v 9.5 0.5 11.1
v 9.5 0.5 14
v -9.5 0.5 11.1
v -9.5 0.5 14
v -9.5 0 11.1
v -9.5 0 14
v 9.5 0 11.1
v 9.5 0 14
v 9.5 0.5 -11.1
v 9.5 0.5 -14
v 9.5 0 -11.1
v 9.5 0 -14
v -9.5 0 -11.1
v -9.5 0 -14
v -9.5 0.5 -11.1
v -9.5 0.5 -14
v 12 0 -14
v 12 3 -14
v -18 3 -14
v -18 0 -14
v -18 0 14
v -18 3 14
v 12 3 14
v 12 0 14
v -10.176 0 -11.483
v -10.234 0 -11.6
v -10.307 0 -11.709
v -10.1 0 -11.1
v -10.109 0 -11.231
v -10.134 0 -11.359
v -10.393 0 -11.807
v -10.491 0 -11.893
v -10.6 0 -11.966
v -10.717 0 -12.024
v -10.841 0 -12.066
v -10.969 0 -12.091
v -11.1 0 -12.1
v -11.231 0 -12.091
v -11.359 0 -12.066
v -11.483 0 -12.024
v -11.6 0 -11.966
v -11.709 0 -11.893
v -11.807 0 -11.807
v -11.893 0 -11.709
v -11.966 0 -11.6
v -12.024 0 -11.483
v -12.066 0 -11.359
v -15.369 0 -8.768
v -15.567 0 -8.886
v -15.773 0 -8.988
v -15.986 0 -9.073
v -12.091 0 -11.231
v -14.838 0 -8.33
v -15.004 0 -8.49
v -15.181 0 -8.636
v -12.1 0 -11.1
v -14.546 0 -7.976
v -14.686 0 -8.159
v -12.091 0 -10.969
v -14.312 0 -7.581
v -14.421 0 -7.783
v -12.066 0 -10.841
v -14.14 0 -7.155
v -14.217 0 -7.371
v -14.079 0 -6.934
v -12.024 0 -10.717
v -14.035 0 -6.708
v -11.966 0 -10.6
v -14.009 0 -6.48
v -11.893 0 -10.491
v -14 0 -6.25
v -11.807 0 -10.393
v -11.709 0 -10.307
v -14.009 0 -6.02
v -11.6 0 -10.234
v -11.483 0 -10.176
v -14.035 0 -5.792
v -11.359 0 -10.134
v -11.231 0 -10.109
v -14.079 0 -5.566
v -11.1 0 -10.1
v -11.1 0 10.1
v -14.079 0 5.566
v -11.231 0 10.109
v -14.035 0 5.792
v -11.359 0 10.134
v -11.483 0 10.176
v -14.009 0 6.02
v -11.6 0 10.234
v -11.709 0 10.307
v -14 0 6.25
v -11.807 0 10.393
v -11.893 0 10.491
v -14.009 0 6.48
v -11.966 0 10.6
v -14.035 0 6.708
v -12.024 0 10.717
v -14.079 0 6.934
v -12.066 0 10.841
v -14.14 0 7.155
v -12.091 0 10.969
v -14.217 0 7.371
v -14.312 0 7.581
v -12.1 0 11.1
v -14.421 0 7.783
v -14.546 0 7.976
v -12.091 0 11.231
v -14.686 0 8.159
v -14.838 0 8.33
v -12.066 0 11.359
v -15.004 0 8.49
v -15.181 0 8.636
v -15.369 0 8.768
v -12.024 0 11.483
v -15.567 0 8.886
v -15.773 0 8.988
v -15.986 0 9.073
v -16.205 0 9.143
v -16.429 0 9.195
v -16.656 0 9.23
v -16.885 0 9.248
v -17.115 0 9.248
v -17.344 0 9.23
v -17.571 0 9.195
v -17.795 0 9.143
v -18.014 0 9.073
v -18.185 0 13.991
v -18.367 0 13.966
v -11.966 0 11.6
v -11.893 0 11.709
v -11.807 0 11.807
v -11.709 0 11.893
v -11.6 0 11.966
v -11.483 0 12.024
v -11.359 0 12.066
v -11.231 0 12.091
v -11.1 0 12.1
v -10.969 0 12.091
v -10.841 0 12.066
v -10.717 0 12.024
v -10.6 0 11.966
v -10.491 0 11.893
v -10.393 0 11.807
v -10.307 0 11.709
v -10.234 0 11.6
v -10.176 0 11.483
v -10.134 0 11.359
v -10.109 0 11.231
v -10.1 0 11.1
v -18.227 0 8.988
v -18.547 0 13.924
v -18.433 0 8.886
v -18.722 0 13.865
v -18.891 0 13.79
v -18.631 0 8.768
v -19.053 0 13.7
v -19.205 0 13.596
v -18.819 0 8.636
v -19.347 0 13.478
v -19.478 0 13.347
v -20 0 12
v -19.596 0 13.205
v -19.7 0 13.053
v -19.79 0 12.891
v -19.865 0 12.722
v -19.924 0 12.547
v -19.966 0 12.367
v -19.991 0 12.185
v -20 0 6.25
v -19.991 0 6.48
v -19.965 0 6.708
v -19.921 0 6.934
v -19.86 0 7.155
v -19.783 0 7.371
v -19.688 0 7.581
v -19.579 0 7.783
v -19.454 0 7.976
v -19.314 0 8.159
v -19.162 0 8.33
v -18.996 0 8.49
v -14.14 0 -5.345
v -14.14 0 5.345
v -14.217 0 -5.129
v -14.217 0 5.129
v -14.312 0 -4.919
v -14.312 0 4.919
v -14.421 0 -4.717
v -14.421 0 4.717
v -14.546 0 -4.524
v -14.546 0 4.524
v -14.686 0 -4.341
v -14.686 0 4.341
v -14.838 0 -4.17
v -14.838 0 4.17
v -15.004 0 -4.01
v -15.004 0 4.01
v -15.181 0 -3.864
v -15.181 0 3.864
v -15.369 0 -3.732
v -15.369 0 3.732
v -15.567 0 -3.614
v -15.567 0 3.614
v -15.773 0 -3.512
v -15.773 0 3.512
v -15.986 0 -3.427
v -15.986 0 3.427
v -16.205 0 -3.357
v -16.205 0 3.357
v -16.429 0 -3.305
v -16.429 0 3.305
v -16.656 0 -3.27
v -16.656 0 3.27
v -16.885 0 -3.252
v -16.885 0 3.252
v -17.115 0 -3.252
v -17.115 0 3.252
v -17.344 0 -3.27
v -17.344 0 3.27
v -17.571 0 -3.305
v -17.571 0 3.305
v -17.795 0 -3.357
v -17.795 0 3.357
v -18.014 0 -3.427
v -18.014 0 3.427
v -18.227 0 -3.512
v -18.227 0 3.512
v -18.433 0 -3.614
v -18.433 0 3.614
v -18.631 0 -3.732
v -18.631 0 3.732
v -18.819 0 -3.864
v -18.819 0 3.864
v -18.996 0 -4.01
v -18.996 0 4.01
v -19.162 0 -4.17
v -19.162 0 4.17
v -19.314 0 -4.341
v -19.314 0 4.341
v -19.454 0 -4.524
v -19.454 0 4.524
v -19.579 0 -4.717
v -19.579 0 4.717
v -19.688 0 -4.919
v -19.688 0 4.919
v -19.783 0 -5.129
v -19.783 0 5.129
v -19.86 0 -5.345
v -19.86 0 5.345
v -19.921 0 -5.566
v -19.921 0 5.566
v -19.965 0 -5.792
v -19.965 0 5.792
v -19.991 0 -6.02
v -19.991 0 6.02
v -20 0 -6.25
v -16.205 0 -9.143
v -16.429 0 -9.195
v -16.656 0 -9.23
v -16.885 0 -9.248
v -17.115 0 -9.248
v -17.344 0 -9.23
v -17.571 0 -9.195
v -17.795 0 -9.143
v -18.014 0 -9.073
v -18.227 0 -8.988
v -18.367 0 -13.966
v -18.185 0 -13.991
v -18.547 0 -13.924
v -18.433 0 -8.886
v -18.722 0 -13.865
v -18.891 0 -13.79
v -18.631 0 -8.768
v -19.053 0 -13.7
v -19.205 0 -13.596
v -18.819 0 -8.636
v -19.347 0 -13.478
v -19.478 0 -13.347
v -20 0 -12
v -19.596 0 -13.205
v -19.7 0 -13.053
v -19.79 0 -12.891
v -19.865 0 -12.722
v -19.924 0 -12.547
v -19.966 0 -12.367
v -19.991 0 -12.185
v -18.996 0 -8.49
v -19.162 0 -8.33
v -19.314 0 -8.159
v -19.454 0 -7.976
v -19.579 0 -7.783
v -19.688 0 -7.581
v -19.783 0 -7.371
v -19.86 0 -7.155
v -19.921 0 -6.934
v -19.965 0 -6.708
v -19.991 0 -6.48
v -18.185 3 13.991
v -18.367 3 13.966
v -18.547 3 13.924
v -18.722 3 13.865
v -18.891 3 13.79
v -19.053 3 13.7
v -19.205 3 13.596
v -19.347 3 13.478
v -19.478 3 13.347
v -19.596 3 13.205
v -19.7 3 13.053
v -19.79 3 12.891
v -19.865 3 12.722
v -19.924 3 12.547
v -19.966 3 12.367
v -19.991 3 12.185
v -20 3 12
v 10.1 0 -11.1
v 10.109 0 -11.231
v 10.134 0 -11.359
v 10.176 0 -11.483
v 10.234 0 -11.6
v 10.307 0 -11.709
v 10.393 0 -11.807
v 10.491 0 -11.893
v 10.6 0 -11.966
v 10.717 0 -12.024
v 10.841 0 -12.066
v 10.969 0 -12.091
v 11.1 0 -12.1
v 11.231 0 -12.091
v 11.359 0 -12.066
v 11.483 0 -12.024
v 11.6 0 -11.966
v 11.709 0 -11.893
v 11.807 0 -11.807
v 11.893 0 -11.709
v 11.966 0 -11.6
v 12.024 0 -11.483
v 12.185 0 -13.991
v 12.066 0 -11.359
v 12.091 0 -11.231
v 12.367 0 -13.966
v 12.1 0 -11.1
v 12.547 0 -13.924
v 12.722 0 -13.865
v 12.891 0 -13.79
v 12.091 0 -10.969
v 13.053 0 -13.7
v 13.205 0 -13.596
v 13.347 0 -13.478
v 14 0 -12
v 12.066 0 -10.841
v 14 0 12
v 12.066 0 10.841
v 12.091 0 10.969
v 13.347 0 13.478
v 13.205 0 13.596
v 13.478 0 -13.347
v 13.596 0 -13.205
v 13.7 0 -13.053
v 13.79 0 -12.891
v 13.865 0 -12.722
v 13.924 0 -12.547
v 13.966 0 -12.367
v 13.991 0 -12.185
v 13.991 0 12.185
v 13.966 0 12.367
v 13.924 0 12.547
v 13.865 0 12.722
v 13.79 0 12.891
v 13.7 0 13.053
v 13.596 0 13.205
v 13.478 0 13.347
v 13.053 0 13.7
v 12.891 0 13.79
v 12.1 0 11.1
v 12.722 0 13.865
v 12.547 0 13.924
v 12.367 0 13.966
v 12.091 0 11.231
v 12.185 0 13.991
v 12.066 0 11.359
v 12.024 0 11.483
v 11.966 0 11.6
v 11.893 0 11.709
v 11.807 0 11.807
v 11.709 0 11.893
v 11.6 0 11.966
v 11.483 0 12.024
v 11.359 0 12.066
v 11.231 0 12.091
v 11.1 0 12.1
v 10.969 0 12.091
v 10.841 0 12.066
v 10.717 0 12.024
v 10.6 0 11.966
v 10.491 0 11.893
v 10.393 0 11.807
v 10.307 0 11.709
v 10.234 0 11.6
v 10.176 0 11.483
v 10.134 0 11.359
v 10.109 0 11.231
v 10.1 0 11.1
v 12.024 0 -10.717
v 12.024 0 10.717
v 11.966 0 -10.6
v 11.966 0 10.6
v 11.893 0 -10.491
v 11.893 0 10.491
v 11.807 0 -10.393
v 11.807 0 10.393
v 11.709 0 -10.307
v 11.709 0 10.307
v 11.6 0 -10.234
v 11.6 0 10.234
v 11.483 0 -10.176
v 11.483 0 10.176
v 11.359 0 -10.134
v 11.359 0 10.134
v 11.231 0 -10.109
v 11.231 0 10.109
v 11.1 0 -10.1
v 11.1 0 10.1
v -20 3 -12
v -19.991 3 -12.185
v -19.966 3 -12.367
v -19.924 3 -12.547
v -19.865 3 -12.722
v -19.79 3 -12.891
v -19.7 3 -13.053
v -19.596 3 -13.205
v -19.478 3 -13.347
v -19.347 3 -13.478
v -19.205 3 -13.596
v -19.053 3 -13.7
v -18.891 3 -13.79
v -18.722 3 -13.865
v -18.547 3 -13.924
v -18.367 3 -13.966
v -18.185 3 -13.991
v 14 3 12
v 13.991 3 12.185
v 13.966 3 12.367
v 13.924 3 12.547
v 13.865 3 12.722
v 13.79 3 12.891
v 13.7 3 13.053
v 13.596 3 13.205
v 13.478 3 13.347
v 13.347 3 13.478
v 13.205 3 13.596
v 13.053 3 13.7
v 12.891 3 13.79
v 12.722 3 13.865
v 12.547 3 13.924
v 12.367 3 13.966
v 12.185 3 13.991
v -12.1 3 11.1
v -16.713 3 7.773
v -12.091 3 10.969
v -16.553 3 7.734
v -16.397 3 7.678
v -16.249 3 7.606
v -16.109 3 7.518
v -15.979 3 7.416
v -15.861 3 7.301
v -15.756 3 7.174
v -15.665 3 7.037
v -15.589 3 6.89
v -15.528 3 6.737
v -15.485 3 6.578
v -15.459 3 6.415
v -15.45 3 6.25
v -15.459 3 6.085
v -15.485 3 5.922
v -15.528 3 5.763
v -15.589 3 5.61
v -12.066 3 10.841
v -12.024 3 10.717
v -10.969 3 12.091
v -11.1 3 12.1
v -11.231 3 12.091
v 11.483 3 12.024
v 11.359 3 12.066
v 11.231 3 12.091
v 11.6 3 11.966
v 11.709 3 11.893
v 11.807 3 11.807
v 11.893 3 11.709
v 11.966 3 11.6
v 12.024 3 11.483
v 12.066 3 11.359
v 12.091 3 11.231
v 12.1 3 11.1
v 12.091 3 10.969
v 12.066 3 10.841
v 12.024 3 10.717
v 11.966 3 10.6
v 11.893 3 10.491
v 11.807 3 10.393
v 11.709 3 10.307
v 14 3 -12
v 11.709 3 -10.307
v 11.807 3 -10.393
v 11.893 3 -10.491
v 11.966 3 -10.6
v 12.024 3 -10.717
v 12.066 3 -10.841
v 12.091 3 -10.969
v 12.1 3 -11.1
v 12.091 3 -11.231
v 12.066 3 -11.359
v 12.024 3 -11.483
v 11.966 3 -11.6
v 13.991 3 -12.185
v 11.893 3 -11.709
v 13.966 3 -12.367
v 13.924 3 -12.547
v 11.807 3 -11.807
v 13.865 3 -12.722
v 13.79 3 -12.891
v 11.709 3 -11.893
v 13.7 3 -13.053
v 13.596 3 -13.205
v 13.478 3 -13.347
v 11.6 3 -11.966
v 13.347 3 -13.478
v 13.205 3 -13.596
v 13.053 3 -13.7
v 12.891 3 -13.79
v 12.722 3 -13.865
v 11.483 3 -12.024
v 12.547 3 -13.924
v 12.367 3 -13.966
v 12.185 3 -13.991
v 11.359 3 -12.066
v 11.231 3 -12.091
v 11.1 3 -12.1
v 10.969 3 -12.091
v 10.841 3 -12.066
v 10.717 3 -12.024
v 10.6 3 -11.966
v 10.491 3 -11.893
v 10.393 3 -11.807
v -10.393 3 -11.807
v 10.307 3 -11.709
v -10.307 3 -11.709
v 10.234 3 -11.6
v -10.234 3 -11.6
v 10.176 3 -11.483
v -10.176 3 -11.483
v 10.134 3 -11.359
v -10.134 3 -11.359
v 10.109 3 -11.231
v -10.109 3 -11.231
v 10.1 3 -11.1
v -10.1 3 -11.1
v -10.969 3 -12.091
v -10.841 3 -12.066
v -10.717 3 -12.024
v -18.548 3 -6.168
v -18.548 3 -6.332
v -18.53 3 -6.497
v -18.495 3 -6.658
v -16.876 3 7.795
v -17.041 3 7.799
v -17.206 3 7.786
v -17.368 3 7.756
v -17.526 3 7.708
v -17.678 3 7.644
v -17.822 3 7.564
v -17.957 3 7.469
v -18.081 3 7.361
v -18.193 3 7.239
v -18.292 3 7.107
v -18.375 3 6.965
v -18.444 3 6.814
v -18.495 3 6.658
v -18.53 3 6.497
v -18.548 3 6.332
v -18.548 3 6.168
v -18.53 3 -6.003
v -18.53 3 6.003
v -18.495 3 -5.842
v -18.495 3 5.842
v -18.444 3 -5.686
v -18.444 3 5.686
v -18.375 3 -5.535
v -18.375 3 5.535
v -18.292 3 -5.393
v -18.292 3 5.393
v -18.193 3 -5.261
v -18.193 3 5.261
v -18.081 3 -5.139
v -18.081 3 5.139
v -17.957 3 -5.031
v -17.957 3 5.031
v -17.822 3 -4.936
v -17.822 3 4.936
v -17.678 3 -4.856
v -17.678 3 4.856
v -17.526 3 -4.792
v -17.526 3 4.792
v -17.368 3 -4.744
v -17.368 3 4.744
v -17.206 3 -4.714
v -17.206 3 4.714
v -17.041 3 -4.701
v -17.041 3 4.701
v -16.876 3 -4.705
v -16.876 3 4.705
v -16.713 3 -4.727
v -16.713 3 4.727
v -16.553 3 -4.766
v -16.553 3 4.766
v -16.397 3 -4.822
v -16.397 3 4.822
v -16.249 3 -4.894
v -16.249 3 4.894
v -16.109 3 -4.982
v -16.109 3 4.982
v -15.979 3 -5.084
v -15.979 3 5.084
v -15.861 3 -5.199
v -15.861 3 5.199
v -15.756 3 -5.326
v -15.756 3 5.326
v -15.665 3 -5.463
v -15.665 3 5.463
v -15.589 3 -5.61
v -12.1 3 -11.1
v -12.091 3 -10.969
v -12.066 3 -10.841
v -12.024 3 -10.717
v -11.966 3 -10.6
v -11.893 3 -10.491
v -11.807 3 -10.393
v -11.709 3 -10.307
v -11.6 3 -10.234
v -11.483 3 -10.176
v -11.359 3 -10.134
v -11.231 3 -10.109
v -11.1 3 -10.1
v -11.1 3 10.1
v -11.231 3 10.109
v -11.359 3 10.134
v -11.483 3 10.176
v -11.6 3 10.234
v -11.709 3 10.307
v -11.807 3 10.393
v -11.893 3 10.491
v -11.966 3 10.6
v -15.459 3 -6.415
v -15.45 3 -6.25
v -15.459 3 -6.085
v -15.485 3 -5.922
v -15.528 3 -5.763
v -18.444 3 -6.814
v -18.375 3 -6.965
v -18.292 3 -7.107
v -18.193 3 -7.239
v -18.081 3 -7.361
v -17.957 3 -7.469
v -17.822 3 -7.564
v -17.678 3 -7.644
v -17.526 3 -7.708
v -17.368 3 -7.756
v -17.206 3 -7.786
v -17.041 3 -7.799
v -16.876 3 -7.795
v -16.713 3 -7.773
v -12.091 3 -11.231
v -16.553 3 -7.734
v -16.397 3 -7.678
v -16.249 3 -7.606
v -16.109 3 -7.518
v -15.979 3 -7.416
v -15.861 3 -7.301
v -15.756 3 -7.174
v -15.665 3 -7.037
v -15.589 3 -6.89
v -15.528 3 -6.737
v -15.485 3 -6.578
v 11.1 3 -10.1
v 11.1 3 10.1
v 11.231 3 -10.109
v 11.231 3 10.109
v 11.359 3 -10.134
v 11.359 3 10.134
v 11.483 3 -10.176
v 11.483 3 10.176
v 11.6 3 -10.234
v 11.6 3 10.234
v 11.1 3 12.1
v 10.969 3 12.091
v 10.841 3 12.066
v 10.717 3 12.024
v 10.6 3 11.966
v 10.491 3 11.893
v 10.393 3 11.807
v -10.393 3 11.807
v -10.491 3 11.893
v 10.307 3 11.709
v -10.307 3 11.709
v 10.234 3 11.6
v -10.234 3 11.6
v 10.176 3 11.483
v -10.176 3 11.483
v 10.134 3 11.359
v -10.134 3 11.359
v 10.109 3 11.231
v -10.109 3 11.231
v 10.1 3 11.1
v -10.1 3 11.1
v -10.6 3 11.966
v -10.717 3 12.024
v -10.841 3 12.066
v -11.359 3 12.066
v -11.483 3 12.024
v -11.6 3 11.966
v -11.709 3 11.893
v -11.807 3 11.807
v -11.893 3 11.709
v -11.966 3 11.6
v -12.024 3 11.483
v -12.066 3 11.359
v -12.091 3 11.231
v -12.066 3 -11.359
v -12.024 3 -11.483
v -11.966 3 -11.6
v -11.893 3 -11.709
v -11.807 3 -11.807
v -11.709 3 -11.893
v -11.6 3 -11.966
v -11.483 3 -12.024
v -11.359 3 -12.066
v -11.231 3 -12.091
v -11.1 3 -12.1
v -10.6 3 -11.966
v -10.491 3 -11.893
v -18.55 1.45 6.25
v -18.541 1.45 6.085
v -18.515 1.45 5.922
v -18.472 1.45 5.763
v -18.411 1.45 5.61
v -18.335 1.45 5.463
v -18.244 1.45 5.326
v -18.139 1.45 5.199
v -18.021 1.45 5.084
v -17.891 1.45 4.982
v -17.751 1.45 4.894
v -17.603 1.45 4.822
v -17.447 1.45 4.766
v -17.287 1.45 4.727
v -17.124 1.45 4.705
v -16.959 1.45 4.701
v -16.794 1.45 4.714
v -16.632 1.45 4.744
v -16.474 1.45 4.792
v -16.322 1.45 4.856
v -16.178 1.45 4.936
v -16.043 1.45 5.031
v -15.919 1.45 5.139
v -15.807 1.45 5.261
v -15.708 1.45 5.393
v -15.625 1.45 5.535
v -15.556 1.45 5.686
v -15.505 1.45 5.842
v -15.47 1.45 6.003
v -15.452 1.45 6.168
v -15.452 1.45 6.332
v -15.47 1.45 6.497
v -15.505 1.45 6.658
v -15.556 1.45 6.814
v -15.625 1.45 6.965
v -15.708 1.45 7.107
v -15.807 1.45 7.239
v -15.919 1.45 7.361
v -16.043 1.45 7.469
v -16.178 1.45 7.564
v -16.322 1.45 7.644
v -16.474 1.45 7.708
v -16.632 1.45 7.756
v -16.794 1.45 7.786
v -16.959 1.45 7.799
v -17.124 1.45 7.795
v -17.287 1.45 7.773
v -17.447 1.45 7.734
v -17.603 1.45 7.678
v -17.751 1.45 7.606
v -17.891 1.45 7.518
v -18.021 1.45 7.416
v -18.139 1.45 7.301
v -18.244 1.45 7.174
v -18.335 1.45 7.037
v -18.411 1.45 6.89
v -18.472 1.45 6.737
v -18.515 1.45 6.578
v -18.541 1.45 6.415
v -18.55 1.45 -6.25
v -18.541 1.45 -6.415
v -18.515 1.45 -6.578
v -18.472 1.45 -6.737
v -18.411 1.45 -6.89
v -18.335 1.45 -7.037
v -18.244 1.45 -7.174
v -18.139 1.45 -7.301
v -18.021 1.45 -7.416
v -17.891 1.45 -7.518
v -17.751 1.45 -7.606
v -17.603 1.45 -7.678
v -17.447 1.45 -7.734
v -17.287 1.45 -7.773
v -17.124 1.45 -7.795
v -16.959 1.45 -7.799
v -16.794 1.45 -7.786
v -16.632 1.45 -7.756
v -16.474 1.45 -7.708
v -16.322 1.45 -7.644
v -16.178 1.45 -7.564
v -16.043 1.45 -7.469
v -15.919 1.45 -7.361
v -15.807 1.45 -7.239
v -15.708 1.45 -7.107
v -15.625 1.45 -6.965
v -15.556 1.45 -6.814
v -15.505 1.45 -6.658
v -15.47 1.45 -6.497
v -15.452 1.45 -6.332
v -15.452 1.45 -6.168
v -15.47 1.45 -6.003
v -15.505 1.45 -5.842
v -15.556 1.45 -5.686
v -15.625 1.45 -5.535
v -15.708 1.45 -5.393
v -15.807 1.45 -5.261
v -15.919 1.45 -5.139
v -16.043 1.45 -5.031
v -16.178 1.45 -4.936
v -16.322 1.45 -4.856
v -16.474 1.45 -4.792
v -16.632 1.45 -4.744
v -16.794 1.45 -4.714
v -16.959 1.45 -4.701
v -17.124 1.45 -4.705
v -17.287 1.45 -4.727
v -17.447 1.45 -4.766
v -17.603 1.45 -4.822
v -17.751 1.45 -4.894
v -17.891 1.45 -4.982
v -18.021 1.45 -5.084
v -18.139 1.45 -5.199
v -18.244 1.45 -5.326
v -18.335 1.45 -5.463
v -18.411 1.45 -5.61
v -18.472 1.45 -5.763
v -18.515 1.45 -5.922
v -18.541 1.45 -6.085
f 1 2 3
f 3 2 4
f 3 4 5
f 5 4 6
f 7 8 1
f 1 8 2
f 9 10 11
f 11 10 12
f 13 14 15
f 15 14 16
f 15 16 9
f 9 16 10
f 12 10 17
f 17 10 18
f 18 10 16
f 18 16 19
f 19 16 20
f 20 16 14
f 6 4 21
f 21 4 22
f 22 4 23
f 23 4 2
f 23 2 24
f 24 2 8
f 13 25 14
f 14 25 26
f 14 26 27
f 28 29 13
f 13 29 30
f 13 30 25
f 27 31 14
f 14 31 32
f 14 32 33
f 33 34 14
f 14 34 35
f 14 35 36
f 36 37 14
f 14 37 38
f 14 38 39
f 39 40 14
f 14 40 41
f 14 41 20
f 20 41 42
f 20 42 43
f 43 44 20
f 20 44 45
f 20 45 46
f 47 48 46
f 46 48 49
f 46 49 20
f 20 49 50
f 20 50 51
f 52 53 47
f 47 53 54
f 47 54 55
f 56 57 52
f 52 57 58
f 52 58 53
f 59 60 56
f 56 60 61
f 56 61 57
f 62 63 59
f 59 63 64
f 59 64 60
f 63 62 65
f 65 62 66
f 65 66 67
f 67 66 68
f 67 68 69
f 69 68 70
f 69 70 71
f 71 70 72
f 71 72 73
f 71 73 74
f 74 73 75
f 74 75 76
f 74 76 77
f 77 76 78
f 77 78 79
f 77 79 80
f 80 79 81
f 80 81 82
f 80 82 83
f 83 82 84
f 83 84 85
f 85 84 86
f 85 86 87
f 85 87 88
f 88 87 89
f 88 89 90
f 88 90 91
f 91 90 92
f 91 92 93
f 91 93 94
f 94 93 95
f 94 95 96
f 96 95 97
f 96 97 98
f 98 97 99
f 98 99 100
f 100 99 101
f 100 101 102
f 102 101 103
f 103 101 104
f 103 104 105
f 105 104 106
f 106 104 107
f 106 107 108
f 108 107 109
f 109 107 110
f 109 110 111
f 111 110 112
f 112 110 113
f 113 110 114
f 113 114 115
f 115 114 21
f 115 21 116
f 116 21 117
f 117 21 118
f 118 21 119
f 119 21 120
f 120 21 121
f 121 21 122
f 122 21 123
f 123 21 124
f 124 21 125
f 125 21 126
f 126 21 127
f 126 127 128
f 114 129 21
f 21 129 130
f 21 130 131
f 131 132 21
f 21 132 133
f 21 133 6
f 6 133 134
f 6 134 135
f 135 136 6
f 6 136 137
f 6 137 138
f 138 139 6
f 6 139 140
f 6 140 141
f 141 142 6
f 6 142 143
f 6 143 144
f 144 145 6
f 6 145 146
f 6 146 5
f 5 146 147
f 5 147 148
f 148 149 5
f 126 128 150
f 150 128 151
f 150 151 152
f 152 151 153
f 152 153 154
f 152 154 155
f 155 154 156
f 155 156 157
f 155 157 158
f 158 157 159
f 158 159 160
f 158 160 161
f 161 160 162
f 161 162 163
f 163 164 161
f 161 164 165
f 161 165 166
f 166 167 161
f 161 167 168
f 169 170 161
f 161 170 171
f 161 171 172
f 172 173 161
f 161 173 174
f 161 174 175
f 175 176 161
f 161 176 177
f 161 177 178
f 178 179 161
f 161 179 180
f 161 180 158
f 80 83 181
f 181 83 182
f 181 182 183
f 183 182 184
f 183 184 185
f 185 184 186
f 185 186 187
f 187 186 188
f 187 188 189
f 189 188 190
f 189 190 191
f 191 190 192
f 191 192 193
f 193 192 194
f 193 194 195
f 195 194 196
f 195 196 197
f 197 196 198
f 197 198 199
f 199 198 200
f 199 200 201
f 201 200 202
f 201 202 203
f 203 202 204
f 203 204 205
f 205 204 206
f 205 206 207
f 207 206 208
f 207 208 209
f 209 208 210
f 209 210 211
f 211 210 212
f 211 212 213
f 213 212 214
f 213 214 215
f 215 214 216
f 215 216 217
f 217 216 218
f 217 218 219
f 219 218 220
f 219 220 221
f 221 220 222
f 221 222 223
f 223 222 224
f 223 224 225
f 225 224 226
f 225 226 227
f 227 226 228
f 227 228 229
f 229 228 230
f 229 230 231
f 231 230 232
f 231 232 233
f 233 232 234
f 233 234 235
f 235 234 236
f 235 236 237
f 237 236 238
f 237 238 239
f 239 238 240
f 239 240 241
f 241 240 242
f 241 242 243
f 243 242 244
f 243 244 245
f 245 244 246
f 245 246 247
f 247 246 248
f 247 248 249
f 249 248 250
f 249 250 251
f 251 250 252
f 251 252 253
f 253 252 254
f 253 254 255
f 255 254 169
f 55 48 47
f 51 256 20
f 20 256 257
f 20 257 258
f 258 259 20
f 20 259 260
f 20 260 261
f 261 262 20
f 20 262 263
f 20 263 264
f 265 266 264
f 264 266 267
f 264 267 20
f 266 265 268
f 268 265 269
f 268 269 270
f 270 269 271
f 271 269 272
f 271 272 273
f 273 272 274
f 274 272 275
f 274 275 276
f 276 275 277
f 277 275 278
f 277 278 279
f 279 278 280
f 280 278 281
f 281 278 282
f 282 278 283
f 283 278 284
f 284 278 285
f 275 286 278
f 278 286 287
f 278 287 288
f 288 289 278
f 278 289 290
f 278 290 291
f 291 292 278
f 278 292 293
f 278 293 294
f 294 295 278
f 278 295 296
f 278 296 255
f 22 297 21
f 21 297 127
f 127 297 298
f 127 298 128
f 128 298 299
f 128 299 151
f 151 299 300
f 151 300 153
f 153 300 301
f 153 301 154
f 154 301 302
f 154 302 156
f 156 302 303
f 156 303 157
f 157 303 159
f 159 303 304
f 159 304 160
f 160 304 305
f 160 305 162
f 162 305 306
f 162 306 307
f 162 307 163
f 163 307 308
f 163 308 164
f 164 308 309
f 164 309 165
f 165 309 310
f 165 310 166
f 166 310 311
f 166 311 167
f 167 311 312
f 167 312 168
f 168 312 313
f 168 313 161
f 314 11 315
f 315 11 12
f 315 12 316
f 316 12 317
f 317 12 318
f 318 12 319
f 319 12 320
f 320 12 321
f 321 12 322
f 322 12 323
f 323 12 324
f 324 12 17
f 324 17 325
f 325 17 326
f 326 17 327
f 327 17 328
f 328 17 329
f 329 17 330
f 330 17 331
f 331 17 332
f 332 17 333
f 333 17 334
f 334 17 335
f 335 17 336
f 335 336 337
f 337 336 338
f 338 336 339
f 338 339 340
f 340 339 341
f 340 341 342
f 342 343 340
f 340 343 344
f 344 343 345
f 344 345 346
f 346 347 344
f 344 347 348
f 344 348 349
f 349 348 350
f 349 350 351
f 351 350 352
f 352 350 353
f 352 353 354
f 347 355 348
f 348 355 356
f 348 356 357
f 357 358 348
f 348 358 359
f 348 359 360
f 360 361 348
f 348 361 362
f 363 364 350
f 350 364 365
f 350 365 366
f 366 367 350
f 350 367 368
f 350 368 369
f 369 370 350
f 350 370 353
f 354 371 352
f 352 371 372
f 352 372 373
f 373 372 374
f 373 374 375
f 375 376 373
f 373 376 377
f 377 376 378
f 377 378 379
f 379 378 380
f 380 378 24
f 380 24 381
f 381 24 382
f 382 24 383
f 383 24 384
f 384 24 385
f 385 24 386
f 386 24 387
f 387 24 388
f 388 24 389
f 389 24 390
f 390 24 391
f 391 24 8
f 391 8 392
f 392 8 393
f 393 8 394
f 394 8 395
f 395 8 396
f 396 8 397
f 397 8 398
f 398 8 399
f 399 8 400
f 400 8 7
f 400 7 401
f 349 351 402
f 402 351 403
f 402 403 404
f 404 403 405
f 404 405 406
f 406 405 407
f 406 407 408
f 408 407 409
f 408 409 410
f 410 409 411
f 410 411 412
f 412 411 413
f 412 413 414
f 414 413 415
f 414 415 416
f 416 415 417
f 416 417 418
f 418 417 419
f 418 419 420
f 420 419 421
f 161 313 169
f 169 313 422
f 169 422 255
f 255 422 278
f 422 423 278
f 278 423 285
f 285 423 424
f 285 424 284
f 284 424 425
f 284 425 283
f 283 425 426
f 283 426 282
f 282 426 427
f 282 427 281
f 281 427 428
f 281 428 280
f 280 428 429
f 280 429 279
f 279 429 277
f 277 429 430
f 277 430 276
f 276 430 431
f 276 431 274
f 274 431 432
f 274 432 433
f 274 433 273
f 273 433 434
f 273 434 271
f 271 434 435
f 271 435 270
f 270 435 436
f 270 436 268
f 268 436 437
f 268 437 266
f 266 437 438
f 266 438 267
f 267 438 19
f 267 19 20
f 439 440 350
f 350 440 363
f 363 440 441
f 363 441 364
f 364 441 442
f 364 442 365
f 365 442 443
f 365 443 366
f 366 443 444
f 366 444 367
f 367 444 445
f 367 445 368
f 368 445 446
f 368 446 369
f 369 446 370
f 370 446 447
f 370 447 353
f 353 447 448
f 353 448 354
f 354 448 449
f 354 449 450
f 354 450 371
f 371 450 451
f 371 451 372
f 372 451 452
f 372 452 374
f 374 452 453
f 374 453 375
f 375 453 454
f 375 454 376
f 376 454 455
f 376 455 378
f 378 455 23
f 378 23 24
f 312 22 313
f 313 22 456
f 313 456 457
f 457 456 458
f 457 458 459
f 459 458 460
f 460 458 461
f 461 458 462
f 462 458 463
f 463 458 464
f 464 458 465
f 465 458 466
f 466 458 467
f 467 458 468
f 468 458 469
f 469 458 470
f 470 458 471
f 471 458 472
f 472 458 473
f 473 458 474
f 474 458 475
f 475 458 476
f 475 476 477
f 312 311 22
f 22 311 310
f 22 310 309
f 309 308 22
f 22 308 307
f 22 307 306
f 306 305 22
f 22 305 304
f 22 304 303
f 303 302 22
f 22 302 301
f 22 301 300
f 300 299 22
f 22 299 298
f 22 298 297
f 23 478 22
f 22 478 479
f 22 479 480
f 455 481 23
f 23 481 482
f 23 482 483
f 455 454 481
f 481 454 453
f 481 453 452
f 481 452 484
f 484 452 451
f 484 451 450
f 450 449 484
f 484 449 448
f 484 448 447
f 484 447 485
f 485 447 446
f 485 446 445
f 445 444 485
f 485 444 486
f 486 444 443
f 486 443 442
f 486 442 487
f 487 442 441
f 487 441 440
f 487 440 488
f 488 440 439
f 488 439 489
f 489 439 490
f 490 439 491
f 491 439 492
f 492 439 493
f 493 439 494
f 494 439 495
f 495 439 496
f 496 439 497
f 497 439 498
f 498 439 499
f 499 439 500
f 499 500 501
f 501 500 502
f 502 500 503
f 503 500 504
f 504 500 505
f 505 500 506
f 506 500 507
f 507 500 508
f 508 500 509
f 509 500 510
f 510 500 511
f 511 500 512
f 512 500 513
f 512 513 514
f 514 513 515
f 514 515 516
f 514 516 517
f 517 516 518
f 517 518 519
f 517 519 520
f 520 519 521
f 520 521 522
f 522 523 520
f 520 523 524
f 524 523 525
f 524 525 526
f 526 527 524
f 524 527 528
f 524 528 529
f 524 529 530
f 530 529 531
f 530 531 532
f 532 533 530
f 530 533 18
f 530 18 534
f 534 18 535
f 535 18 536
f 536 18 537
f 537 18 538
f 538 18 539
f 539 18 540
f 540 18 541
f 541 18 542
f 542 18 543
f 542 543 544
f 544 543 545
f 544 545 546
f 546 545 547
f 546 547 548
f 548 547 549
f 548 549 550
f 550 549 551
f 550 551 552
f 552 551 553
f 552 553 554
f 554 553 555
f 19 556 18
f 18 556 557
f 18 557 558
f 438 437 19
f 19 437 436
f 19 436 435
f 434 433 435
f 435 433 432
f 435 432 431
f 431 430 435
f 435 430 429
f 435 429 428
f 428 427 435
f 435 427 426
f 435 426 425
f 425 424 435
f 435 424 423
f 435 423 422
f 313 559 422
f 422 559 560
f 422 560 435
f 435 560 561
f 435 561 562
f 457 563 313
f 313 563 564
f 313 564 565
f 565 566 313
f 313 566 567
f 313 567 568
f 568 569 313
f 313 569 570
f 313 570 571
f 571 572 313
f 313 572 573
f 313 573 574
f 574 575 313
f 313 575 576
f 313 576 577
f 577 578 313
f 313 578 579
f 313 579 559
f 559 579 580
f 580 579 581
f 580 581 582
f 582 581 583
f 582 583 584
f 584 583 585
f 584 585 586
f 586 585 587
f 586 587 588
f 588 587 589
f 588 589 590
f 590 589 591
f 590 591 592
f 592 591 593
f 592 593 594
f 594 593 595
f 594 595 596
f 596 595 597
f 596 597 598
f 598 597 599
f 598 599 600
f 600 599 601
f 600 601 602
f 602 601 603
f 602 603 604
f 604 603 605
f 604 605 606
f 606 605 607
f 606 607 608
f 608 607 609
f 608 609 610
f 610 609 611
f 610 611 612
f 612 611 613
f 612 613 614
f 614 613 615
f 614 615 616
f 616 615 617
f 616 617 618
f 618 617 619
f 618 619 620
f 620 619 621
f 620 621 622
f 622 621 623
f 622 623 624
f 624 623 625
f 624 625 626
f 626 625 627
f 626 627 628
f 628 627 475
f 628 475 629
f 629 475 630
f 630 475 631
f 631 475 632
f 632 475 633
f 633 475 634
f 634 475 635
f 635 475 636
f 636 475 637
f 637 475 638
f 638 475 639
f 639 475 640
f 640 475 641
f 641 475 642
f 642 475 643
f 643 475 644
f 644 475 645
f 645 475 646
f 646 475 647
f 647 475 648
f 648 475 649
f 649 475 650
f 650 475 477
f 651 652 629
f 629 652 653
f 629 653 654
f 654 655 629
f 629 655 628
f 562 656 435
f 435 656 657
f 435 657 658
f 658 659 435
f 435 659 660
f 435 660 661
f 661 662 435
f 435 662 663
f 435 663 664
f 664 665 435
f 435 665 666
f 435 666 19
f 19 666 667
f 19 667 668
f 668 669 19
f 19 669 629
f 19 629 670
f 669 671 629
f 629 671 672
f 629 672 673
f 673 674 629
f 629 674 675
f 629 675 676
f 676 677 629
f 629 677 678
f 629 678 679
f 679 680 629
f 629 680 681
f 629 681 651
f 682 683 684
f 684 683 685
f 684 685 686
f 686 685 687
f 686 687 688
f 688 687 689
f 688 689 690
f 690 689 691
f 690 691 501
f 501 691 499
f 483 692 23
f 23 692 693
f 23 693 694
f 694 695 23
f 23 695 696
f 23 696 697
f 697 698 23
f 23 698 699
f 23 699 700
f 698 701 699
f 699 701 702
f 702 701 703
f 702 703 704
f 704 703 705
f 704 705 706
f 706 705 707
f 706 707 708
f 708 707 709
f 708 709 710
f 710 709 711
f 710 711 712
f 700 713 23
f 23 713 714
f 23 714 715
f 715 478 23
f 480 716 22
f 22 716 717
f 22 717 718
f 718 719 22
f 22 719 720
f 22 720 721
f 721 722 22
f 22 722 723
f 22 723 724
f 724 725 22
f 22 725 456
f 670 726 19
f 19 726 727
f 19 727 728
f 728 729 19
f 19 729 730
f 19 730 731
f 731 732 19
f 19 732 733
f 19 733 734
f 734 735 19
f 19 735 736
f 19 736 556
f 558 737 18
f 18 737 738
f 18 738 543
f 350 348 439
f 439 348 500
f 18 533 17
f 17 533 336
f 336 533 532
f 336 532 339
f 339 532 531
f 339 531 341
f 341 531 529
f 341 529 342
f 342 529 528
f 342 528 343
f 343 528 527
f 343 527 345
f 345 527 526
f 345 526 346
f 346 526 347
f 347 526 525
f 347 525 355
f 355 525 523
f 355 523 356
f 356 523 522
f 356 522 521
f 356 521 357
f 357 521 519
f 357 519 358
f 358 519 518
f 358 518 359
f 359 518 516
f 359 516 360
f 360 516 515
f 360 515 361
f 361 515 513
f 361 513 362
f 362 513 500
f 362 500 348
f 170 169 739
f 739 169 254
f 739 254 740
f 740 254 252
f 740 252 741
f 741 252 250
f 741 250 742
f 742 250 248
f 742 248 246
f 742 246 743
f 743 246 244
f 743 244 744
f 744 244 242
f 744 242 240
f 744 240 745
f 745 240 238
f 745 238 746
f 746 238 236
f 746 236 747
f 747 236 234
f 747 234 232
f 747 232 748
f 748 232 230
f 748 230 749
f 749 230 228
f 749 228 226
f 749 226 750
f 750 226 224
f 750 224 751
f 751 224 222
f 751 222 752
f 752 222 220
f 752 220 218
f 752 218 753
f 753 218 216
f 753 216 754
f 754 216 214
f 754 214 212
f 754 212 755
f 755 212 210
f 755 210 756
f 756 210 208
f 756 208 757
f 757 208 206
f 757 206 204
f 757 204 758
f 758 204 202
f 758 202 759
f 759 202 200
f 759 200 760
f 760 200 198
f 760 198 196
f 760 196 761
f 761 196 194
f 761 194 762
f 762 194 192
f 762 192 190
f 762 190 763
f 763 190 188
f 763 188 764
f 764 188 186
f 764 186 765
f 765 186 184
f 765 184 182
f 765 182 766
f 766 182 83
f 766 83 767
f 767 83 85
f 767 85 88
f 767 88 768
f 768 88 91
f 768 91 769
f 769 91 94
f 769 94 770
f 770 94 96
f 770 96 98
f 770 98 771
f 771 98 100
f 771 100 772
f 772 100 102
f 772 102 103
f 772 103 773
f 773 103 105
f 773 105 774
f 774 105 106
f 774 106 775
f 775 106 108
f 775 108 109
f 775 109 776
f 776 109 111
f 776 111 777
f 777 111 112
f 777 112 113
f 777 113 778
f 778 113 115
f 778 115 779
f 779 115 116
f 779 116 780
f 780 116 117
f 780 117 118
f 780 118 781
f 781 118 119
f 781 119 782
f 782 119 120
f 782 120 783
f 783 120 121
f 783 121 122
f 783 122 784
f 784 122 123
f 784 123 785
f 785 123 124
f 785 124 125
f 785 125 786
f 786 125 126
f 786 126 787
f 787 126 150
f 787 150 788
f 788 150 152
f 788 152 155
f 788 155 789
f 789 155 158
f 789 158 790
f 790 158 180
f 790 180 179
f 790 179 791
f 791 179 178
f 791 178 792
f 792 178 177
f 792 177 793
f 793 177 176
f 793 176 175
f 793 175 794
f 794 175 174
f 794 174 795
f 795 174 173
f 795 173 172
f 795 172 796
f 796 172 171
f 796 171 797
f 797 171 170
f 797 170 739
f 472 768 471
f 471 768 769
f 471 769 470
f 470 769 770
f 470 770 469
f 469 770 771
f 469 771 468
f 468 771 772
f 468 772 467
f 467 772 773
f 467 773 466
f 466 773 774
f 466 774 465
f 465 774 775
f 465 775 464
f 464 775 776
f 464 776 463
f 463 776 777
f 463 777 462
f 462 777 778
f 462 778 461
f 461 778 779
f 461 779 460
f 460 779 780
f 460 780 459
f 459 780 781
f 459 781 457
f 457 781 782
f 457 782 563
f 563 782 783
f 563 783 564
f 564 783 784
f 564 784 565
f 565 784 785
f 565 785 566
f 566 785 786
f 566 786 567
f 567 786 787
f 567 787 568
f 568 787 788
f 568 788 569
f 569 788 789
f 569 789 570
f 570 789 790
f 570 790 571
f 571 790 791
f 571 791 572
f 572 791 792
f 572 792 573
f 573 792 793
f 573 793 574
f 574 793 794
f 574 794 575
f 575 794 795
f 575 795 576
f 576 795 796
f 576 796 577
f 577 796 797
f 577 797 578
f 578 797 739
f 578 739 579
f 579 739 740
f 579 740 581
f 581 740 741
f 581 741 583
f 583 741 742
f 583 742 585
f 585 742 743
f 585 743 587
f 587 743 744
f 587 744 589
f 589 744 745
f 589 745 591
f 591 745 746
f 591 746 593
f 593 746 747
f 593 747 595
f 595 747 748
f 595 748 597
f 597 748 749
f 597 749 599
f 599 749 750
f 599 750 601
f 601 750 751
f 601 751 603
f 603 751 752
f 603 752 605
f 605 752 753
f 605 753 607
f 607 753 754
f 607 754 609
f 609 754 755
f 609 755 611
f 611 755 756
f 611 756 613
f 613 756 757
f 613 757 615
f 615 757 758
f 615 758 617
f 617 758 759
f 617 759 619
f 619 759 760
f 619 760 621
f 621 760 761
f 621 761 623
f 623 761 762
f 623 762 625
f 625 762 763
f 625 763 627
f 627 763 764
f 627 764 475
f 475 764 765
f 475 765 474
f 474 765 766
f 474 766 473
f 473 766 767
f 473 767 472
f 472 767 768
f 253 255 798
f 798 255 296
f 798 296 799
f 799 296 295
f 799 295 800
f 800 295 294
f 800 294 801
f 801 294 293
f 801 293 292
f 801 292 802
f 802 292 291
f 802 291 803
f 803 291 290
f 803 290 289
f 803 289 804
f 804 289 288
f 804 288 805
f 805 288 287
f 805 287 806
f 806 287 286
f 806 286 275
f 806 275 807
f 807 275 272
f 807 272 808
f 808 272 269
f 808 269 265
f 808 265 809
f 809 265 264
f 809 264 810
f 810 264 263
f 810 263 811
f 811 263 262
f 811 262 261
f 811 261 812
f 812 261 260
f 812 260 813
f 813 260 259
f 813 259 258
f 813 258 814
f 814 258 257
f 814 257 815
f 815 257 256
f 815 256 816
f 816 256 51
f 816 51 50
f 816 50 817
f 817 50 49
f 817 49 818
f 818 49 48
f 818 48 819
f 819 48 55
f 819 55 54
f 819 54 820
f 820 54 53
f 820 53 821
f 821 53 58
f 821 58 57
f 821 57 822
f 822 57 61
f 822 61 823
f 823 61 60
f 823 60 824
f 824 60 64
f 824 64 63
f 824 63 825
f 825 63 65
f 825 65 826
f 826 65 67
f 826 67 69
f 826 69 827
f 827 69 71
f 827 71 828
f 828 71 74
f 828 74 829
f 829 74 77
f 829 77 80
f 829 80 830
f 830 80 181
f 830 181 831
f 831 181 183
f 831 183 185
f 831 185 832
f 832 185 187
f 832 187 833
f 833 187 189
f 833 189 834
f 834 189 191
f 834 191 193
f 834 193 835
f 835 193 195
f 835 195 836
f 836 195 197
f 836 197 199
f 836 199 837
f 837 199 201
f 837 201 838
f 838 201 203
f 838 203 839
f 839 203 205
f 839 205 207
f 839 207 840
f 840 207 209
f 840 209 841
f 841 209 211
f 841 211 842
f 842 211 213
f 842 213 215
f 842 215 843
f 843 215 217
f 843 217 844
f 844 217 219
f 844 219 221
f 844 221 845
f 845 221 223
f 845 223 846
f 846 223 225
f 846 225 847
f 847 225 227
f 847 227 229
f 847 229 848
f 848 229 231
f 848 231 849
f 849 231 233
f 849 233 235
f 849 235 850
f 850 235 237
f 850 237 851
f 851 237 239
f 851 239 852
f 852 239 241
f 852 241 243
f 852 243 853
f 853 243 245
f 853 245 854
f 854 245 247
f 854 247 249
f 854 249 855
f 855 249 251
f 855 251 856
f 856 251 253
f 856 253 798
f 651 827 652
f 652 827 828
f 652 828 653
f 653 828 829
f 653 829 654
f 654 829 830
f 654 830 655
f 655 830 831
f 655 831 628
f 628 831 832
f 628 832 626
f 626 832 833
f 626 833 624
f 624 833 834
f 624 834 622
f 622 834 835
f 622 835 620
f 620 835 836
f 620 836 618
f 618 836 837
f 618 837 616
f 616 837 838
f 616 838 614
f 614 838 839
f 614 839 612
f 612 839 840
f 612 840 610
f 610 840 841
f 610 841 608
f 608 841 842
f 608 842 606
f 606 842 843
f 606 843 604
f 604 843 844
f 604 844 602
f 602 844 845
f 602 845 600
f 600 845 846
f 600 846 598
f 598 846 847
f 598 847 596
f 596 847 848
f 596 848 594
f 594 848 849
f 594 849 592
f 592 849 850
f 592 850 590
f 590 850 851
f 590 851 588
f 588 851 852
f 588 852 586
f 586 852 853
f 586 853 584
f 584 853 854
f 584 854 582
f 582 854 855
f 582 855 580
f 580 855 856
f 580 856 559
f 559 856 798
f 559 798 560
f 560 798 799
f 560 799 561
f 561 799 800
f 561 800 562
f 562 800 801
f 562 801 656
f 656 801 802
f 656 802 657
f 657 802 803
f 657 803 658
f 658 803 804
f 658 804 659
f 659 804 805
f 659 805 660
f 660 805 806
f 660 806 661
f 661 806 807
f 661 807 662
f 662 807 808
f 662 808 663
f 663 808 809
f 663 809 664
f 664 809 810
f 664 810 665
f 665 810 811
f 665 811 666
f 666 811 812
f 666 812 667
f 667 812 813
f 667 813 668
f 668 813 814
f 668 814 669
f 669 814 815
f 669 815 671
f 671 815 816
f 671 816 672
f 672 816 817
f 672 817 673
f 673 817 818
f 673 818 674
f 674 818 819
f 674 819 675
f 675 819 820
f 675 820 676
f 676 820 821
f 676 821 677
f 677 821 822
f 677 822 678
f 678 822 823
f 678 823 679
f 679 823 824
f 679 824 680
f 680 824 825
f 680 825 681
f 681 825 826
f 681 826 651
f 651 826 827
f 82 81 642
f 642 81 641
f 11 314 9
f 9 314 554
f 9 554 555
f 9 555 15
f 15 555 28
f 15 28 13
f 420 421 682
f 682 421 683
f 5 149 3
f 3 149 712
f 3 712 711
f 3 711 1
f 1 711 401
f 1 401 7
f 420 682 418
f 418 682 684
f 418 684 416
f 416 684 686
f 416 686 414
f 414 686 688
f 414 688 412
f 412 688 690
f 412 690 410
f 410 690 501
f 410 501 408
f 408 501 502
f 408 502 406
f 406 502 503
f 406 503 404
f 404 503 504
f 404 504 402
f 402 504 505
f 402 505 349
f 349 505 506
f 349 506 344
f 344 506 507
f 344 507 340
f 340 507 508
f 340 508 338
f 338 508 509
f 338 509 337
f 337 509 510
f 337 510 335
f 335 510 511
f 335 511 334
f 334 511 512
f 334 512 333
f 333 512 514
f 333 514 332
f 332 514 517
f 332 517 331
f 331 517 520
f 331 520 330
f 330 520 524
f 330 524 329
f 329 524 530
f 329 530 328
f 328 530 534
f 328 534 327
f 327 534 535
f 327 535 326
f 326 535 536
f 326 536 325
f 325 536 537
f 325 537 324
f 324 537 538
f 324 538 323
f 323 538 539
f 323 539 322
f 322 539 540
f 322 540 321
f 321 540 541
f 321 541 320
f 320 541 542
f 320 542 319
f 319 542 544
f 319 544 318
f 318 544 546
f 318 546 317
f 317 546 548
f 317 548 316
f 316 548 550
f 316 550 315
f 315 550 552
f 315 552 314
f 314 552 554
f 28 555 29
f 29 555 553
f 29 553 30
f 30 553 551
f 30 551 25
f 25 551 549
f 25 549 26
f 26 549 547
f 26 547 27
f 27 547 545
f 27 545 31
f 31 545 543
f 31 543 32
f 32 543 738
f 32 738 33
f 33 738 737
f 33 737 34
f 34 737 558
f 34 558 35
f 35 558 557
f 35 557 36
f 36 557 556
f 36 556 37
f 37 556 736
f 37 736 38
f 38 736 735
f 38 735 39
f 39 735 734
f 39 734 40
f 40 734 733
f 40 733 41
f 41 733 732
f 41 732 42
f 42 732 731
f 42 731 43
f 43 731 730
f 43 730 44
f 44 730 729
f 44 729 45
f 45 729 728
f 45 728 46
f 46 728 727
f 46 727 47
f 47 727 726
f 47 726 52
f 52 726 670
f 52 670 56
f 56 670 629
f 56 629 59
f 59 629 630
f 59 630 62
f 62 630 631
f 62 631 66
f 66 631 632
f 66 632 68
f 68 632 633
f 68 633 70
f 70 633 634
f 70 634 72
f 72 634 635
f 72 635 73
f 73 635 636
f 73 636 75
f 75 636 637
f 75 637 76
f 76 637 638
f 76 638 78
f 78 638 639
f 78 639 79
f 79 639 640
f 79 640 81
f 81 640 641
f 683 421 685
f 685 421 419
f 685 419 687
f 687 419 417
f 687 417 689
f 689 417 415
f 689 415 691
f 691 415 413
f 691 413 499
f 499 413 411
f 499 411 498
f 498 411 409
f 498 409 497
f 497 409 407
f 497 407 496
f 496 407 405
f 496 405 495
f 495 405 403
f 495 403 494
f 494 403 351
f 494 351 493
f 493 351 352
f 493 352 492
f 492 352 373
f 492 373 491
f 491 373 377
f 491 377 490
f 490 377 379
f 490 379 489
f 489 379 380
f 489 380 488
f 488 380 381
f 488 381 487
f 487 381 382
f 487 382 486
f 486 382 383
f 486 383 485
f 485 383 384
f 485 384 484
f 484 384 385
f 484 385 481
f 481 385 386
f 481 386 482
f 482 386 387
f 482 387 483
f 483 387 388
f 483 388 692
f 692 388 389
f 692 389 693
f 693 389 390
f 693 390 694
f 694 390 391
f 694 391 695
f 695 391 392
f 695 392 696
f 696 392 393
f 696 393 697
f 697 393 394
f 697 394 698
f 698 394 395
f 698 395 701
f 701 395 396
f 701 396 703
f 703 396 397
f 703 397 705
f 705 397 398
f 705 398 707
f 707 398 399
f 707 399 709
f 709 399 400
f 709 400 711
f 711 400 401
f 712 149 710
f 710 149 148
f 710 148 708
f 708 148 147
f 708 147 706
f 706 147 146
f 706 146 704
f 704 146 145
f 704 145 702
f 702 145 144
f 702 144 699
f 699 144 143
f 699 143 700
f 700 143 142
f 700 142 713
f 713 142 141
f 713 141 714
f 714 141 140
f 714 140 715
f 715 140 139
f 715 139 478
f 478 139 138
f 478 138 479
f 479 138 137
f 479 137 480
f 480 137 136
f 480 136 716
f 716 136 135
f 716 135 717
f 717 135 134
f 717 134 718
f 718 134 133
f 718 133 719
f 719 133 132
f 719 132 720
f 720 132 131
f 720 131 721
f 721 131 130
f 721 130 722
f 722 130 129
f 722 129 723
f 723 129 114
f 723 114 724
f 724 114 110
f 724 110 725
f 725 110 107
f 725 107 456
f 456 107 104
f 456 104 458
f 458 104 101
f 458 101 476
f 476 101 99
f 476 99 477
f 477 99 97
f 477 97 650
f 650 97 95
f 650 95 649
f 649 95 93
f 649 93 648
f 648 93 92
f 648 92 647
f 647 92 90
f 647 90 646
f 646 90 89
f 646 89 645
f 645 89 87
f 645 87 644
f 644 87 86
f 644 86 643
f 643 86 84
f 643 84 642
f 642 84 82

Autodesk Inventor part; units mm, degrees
ref_plane "YZ Plane" through (0, 0, 0) normal (1, 0, 0) x (0, 1, 0)
ref_plane "XZ Plane" through (0, 0, 0) normal (0, 1, 0) x (-1, 0, 0)
ref_plane "XY Plane" through (0, 0, 0) normal (0, 0, 1) x (1, 0, 0)
sketch "Sketch1" plane through (0, 0, 0) normal (0, 1, 0) x (-1, 0, 0)
  line L0 (-11.1, -11.1) -> (-10.1, -11.1)
  line L1 (11.1, -11.1) -> (11.1, -10.1)
  line L2 (11.1, 11.1) -> (10.1, 11.1)
  line L3 (-11.1, 11.1) -> (-11.1, 10.1)
  line L4 (-11.1, -11.1) -> (11.1, 11.1) construction
  line L5 (11.1, -11.1) -> (-11.1, 11.1) construction
  line L6 (-14, -14) -> (14, -14)
  line L7 (14, -14) -> (14, 14)
  line L8 (14, 14) -> (-14, 14)
  line L9 (-14, 14) -> (-14, -14)
  line L10 (-14, -14) -> (14, 14) construction
  line L11 (14, -14) -> (-14, 14) construction
  line L12 (14, 14) -> (20, 14)
  line L13 (20, 14) -> (20, -14)
  line L14 (20, -14) -> (14, -14)
  line L15 (14, -14) -> (14, 14)
  line L16 (3.6361, 0) -> (-5.9421, 0)
  circle A0 centre (11.1, 11.1) radius 1
  line L17 (0, 4.2823) -> (0, -4.7782)
  circle A1 centre (11.1, -11.1) radius 1
  circle A2 centre (-11.1, 11.1) radius 1
  circle A3 centre (-11.1, -11.1) radius 1
  line L18 (11.1, 10.1) -> (11.1, 11.1)
  line L19 (10.1, 11.1) -> (-10.1, 11.1)
  line L20 (11.1, -10.1) -> (11.1, 10.1)
  line L21 (10.1, -11.1) -> (11.1, -11.1)
  line L22 (-11.1, 10.1) -> (-11.1, -10.1)
  line L23 (-10.1, 11.1) -> (-11.1, 11.1)
  line L24 (-10.1, -11.1) -> (10.1, -11.1)
  line L25 (-11.1, -10.1) -> (-11.1, -11.1)
  point P0 (0, 0)
  point P1 (17, 6.25)
  point P2 (17, -6.25)
  dimension "d0" = 22.2
  dimension "d1" = 22.2
  dimension "d2" = 28
  dimension "d3" = 28
  dimension "d4" = 6
  dimension "d5" = 12.5
  dimension "d6" = 2
  dimension "d9" = 22.2
  dimension "d12" = 22.2
  dimension "d17" = 3
extrude "Extrusion1" add sketch "Sketch1" along normal blind 3
hole "Hole1" at (-17, 0, 6.25) at (-17, 0, -6.25) direction (0, 1, 0) diameter 3.1 end through all countersink diameter 6 countersink angle 90
fillet "Fillet1" radius 2 2 edges at (14, 1.5, -14) (14, 1.5, 14)
fillet "Fillet2" radius 2 2 edges at (-20, 1.5, -14) (-20, 1.5, 14)
sketch "Sketch2" plane through (0, 0, 0) normal (0, -1, 0) x (1, 0, 0)
  line L0 (12, -14) -> (-18, -14) projected
  line L1 (-9.5, 14) -> (9.5, 14)
  line L2 (9.5, 14) -> (9.5, -14)
  line L3 (9.5, -14) -> (-9.5, -14)
  line L4 (-9.5, -14) -> (-9.5, 14)
  line L5 (-9.5, 14) -> (9.5, -14) construction
  line L6 (9.5, 14) -> (-9.5, -14) construction
  point P0 (0, 0)
  dimension "d27" = 19
extrude "Extrusion2" cut sketch "Sketch2" against normal blind 0.5
properties part number "Metal_mount_horizontal_coverslip22x22_v2"
